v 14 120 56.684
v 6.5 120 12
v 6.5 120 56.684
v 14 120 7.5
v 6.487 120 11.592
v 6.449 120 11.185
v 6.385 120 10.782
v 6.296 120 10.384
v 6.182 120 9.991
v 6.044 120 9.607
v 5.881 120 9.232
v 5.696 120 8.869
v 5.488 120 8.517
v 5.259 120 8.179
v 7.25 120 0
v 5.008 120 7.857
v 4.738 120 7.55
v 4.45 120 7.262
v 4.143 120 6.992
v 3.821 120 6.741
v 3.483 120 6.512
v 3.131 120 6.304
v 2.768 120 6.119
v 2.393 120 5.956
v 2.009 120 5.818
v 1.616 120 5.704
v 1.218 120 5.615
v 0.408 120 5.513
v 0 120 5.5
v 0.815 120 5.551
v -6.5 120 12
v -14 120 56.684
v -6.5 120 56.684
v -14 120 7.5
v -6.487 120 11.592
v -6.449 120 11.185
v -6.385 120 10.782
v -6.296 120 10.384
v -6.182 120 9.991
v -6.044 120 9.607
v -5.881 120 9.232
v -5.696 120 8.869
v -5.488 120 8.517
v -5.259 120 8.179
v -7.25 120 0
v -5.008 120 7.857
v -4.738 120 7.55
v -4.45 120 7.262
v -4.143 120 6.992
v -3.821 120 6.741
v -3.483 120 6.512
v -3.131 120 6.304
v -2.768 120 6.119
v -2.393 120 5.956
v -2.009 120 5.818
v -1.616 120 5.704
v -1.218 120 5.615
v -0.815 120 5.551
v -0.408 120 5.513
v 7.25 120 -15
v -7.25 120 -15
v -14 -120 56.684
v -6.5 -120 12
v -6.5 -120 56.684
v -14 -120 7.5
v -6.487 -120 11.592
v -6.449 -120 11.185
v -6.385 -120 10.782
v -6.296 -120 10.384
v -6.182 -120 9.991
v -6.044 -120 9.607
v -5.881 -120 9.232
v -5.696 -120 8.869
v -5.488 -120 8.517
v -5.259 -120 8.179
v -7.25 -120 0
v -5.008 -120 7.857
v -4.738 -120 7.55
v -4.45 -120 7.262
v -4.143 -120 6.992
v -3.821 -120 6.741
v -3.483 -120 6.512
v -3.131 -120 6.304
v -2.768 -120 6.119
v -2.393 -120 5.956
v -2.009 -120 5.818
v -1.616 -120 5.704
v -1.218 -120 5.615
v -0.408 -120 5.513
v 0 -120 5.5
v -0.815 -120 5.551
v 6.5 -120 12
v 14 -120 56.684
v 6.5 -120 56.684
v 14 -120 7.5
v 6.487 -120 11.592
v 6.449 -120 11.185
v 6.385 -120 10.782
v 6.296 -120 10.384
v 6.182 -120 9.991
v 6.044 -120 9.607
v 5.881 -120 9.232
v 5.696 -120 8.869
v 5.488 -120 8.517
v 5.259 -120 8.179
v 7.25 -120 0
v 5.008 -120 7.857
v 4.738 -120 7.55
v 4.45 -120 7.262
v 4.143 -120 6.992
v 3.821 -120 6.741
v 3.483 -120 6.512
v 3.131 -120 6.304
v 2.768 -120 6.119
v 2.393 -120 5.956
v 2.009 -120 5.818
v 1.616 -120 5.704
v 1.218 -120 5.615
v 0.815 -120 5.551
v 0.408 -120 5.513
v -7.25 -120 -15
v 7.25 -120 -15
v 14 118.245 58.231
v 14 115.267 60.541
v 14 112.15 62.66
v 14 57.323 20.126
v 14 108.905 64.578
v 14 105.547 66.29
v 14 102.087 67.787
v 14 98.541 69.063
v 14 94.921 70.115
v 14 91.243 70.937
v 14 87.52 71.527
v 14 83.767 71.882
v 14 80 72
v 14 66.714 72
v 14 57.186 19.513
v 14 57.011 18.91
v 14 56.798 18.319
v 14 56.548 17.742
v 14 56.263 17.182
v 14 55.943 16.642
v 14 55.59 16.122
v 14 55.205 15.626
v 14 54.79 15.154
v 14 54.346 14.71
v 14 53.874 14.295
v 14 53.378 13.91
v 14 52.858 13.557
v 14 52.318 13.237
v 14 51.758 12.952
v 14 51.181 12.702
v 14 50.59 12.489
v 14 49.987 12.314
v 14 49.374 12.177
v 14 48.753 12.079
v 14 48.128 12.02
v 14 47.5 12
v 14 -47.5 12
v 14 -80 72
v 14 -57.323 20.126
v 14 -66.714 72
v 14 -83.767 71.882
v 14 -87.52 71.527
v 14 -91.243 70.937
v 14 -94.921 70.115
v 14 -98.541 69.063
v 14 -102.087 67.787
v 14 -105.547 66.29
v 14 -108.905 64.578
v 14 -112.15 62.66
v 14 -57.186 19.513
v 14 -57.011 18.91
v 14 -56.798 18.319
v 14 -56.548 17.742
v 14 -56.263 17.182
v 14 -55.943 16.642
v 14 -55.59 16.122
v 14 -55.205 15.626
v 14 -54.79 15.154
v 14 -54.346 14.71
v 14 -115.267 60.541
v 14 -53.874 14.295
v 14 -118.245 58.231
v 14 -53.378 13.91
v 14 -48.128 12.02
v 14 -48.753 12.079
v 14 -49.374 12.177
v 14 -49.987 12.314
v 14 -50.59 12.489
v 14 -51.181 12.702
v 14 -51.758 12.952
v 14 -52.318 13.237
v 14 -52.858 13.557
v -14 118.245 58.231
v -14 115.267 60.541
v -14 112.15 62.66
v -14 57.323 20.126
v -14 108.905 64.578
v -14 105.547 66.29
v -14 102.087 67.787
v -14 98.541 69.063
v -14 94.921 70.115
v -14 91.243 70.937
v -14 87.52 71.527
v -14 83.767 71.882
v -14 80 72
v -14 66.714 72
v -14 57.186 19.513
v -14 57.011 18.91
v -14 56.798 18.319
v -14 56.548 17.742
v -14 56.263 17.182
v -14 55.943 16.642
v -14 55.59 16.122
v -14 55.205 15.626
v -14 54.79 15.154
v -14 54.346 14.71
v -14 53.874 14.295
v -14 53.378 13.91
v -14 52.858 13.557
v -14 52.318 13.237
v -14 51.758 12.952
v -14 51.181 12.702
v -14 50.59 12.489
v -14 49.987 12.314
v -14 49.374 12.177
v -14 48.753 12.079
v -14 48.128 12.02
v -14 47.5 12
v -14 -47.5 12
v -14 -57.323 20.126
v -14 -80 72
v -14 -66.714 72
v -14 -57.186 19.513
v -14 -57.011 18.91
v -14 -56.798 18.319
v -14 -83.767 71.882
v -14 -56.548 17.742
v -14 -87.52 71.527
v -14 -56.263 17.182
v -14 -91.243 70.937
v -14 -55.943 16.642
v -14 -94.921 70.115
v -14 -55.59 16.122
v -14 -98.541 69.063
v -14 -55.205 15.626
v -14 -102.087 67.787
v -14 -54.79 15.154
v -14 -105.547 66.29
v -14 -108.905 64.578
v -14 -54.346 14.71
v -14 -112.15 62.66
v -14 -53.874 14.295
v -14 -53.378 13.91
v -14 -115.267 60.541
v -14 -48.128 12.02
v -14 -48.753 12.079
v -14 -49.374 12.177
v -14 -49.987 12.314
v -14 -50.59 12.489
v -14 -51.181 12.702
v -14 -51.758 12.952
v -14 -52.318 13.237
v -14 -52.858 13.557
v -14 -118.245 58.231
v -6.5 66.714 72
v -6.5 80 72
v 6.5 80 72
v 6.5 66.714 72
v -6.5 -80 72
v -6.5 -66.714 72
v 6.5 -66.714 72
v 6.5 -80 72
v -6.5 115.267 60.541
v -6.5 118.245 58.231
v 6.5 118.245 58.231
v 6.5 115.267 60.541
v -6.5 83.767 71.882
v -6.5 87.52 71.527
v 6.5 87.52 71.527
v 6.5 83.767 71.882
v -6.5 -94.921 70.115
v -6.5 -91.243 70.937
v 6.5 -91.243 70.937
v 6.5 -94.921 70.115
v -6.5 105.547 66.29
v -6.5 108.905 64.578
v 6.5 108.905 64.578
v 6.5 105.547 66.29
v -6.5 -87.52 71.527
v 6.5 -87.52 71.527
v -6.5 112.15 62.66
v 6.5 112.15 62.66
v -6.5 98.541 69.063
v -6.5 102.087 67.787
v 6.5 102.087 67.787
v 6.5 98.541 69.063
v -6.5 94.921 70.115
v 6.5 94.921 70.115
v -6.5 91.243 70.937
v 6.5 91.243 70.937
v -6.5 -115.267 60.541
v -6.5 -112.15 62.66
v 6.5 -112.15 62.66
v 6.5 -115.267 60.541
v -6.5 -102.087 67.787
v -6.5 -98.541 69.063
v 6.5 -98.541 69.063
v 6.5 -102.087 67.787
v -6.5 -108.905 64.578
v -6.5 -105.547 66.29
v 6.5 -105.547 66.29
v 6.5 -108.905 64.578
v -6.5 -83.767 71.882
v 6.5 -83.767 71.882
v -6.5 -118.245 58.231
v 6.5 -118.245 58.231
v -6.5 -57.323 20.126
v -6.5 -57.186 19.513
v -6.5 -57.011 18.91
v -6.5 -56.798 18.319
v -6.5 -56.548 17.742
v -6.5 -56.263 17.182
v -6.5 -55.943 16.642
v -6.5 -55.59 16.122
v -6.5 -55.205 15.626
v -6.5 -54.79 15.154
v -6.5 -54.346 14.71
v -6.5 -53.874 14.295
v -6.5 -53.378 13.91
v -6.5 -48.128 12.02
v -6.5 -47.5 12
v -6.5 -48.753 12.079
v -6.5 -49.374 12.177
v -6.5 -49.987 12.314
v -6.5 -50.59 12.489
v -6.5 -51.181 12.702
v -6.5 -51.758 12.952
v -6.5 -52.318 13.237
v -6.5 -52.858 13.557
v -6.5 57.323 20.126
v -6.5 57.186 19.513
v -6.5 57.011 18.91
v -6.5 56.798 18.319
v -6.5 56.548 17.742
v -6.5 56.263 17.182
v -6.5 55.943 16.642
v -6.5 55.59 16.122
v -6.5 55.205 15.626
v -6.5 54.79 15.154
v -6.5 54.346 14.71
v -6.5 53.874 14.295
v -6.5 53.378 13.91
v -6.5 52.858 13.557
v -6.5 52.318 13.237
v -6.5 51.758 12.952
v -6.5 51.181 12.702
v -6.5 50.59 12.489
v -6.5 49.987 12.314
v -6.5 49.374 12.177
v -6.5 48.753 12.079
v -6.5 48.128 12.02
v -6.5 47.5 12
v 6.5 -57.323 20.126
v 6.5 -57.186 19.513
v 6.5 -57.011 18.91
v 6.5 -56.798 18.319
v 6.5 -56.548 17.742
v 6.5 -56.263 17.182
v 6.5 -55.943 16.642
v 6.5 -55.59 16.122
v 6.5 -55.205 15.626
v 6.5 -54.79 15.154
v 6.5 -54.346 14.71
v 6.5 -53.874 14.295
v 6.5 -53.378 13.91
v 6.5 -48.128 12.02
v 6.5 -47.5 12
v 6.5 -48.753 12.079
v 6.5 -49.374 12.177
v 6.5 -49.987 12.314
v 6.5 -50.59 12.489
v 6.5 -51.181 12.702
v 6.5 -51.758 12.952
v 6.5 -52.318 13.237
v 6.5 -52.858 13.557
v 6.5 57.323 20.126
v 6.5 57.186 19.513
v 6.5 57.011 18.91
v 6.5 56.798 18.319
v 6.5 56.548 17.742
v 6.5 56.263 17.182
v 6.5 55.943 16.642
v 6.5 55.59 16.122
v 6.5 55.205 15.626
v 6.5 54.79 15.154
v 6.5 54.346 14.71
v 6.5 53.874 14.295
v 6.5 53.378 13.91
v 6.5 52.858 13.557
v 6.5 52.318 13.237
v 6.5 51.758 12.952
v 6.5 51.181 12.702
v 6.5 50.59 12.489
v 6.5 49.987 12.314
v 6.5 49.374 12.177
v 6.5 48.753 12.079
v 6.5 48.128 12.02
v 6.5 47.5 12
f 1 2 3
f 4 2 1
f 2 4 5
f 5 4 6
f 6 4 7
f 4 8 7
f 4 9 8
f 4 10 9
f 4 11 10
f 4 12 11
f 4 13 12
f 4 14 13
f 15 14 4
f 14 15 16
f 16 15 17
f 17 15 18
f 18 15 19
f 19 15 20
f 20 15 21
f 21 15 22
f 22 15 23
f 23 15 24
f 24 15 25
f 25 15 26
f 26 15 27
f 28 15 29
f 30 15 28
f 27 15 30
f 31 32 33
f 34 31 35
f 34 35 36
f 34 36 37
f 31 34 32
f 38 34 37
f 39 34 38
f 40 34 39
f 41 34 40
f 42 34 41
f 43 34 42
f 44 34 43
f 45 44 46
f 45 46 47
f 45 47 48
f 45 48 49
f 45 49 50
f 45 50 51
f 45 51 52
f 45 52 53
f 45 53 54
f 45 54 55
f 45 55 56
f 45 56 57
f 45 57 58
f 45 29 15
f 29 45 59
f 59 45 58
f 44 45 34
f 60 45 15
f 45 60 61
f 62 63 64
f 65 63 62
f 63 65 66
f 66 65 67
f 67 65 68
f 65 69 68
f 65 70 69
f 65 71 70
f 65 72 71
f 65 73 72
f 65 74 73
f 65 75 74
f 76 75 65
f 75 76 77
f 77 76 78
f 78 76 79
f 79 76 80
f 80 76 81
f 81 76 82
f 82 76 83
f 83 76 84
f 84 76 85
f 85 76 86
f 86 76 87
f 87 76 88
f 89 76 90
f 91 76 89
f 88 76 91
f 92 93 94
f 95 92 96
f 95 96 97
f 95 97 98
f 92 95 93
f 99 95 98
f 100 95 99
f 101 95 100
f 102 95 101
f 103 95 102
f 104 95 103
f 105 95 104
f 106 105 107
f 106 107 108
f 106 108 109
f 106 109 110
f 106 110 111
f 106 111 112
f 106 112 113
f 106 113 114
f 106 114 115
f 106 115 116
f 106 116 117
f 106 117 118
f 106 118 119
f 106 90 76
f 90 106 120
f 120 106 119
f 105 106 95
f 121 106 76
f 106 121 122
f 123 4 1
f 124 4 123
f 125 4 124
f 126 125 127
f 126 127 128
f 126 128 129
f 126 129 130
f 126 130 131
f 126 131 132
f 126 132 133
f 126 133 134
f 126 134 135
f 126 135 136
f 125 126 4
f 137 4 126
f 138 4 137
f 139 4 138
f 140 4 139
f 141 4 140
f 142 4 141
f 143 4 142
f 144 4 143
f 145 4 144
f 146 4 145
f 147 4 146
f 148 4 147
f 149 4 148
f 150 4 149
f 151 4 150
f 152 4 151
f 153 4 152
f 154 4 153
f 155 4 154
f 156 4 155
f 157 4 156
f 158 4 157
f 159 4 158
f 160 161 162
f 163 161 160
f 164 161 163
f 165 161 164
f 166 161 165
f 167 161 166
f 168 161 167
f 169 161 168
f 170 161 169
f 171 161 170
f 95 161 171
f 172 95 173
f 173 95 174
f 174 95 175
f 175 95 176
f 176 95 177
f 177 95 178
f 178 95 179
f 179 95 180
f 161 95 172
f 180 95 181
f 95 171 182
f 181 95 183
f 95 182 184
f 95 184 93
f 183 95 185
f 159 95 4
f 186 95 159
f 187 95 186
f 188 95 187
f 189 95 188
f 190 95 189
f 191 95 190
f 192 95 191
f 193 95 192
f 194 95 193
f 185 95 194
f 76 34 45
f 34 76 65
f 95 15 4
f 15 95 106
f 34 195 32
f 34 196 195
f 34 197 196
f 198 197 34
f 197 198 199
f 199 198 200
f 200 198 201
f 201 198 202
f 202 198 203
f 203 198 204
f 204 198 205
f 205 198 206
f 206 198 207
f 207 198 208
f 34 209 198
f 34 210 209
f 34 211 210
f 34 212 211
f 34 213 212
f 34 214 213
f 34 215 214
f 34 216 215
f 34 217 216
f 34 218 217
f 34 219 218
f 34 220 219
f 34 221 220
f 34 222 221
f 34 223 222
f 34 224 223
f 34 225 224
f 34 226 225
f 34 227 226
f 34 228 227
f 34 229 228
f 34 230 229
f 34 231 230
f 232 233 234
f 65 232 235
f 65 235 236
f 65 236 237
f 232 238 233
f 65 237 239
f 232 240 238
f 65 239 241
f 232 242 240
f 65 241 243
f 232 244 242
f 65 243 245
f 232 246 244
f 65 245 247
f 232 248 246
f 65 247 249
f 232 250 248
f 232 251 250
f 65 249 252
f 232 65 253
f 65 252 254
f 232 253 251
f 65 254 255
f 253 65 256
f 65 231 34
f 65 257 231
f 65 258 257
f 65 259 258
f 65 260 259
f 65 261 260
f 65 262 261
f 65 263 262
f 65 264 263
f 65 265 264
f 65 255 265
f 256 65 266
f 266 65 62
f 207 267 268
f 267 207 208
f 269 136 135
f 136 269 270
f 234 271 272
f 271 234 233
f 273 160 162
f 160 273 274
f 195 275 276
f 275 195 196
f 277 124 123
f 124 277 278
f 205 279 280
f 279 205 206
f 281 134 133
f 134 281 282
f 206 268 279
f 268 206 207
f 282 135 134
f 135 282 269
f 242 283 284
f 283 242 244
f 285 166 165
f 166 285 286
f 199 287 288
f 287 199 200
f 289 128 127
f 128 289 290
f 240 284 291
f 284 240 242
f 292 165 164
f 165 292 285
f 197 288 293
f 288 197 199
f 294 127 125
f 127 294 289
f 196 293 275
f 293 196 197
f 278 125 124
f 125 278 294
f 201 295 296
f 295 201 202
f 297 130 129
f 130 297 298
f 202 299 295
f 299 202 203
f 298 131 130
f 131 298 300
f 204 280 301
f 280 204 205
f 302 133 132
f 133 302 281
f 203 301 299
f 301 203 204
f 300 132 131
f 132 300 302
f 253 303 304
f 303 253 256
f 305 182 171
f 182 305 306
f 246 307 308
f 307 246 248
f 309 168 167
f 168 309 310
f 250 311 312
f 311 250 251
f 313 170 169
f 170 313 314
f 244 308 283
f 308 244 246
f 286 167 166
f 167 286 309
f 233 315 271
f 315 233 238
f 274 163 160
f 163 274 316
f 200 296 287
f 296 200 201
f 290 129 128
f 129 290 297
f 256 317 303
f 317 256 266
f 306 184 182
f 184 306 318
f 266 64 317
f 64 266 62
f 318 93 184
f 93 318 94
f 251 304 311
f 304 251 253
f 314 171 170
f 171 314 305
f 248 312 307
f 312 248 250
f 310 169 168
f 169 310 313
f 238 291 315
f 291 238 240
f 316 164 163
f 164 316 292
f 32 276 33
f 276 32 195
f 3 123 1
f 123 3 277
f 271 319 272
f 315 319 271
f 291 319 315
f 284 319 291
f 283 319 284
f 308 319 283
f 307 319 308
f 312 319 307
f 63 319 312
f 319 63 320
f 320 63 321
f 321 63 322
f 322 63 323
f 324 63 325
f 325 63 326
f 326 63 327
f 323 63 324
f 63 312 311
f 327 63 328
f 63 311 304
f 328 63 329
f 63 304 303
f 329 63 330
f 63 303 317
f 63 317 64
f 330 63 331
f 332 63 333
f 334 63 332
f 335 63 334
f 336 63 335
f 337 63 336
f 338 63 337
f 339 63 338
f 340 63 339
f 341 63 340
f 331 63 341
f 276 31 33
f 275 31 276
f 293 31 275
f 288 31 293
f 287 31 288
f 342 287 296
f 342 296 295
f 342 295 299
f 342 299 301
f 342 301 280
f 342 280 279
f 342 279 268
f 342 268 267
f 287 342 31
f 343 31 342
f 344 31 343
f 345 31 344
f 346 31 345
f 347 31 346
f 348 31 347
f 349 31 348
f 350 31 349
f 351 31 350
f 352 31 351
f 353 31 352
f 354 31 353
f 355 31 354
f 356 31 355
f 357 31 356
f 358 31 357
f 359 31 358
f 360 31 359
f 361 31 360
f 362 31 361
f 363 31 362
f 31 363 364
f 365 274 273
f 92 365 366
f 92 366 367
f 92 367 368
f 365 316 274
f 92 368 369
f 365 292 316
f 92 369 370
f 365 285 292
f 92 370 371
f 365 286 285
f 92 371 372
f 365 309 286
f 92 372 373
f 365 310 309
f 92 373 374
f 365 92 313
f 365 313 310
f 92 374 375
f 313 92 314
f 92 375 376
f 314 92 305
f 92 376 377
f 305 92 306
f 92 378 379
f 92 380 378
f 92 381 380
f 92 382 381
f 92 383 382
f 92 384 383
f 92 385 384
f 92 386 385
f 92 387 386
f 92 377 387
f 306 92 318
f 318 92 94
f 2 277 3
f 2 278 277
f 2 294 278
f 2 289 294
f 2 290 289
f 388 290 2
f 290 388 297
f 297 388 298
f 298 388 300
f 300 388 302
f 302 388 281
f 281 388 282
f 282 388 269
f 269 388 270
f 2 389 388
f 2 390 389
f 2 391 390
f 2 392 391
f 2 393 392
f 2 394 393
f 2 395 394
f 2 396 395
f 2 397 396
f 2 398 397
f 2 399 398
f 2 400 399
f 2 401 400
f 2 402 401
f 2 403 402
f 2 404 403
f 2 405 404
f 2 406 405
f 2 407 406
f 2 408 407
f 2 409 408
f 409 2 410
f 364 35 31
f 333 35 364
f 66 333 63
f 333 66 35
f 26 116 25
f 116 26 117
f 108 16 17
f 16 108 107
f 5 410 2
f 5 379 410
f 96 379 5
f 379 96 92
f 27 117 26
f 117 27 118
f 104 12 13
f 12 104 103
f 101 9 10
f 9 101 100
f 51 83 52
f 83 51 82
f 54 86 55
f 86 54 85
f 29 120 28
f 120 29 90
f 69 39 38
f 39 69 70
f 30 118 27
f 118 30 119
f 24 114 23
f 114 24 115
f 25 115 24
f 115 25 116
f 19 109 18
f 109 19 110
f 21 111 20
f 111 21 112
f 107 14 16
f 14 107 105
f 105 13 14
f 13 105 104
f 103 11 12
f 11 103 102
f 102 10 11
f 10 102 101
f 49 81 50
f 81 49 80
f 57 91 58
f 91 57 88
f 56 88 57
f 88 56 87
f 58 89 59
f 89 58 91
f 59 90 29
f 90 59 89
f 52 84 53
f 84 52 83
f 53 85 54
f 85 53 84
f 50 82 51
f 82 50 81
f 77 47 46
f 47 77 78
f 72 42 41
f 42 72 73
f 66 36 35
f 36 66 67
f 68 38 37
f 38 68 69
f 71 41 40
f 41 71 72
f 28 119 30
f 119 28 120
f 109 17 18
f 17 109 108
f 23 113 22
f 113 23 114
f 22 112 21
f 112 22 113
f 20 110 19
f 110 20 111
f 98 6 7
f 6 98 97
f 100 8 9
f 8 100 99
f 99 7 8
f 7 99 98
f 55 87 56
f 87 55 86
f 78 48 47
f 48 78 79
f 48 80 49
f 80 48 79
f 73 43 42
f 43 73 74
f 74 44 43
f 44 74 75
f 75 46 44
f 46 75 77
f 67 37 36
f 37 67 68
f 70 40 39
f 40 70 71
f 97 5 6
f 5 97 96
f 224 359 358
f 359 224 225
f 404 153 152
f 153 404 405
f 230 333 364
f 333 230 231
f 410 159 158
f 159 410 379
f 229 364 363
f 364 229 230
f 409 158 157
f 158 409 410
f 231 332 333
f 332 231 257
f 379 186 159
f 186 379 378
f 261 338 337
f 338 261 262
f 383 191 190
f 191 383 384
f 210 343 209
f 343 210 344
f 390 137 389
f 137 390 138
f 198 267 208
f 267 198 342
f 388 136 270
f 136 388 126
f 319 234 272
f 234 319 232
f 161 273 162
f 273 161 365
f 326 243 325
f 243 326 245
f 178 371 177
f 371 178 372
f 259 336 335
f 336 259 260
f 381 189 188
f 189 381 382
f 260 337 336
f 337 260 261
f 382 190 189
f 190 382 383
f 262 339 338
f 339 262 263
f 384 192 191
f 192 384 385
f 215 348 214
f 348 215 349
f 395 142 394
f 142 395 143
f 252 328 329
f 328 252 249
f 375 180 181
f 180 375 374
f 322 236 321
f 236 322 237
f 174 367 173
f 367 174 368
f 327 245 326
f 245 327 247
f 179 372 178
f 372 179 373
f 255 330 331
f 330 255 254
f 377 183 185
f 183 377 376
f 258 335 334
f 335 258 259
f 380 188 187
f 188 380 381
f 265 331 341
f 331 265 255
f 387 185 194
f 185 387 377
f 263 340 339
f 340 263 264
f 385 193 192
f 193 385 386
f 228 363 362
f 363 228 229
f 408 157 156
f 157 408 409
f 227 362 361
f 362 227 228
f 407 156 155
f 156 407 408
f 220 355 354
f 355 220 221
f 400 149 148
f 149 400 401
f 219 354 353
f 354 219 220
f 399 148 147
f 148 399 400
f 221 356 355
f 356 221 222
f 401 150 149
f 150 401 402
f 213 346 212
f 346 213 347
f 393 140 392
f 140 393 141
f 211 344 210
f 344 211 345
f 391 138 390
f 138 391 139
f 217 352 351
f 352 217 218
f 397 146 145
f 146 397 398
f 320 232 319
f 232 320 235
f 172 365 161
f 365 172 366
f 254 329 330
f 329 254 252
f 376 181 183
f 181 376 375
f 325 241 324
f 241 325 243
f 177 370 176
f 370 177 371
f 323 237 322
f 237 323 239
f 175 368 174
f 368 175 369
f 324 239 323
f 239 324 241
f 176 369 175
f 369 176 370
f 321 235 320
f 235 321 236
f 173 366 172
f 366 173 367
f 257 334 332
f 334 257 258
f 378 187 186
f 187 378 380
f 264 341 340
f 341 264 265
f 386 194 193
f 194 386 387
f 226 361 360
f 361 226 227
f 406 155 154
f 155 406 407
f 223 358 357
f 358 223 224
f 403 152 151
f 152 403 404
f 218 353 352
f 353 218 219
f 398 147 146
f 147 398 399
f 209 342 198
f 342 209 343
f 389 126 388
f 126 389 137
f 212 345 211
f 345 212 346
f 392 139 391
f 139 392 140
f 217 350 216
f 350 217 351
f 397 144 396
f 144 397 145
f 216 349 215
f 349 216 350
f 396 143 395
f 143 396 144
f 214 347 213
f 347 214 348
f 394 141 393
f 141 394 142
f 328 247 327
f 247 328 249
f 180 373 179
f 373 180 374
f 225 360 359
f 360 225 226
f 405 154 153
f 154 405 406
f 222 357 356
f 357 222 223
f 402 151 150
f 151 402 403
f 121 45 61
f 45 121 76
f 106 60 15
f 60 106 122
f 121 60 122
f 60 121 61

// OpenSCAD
$fn=100;
/*

Object Name: Adapter For Laptop Chest Stand (OpenSCAD)
Author: Brian Khuu 2021

*/

adapterL=230+10;
adapterH=20-5;
adapterAngle=0; 

adapterHingeOffset=5;

currGapW=15-0.5;
newGapW=15-2;
newGapH=60;
newGapThickness=15;

union()
{
translate([0,0,-adapterH/2])
    cube([currGapW,adapterL,adapterH], center=true);

difference()
{
    union()
    {
        // base
        hull()
        {       
            translate([0,0,0.005])
                    cube([currGapW,adapterL,0.01], center=true);
            translate([0,0,adapterHingeOffset])
                rotate([0,adapterAngle,0])
                translate([0,0,0.005+5])
                cube([newGapW+newGapThickness,adapterL,0.01+5], center=true);
        }

        // top
        intersection()
        {
            hull()
            {
                translate([0,0,0.005])
                        cube([currGapW,adapterL,0.01], center=true);
                translate([0,0,adapterHingeOffset])
                    rotate([0,adapterAngle,0])
                    translate([0,0,newGapH/2+5])
                    cube([newGapW+newGapThickness,adapterL,newGapH+5], center=true);
            }
            hull()
            {
                roundness=20;
                translate([0,0,adapterHingeOffset])
                    rotate([0,adapterAngle,0])
                    translate([0,adapterL/2-newGapH+roundness,7]) 
                    rotate([0, 90,0])
                    cylinder(r=newGapH,h=1000, center=true);
                translate([0,0,adapterHingeOffset])
                    rotate([0,adapterAngle,0])
                    translate([0,-adapterL/2+newGapH-roundness,7]) 
                    rotate([0, 90,0])
                    cylinder(r=newGapH,h=1000, center=true);
            }
        }
    }
    
    // Gap Cut
    translate([0,0,adapterHingeOffset])
        rotate([0,adapterAngle,0])
        translate([0,0,newGapH/2+5+4])
        cube([newGapW,adapterL+1,newGapH+4], center=true);
    
    // Gap internal curve
    translate([0,0,adapterHingeOffset])
        rotate([0,adapterAngle,0])
        translate([0,-adapterL/2+newGapH-newGapW,7]) 
        rotate([90,0,0])
        cylinder(r=newGapW/2,h=1000, center=true);    
    
    // Middle slit for trackpad
    hull()
    {
        roundal=10;
        splitW=105;
        // Bottom slit
        translate([0,0,adapterHingeOffset])
            rotate([0,adapterAngle,0])
            translate([0,(splitW-roundal)/2,roundal+7]) 
            rotate([0,90,0])
            cylinder(r=roundal,h=1000, center=true);
        translate([0,0,adapterHingeOffset])
            rotate([0,adapterAngle,0])
            translate([0,-(splitW-roundal)/2,roundal+7]) 
            rotate([0,90,0])
            cylinder(r=roundal,h=1000, center=true);
        
        // Top Slit
        translate([0,0,adapterHingeOffset])
            rotate([0,adapterAngle,0])
            translate([0,(splitW*1.2-roundal)/2,roundal+5+newGapH]) 
            rotate([0,90,0])
            cylinder(r=roundal,h=1000, center=true);
        translate([0,0,adapterHingeOffset])
            rotate([0,adapterAngle,0])
            translate([0,-(splitW*1.2-roundal)/2,roundal+5+newGapH]) 
            rotate([0,90,0])
            cylinder(r=roundal,h=1000, center=true);
    }
}
}
